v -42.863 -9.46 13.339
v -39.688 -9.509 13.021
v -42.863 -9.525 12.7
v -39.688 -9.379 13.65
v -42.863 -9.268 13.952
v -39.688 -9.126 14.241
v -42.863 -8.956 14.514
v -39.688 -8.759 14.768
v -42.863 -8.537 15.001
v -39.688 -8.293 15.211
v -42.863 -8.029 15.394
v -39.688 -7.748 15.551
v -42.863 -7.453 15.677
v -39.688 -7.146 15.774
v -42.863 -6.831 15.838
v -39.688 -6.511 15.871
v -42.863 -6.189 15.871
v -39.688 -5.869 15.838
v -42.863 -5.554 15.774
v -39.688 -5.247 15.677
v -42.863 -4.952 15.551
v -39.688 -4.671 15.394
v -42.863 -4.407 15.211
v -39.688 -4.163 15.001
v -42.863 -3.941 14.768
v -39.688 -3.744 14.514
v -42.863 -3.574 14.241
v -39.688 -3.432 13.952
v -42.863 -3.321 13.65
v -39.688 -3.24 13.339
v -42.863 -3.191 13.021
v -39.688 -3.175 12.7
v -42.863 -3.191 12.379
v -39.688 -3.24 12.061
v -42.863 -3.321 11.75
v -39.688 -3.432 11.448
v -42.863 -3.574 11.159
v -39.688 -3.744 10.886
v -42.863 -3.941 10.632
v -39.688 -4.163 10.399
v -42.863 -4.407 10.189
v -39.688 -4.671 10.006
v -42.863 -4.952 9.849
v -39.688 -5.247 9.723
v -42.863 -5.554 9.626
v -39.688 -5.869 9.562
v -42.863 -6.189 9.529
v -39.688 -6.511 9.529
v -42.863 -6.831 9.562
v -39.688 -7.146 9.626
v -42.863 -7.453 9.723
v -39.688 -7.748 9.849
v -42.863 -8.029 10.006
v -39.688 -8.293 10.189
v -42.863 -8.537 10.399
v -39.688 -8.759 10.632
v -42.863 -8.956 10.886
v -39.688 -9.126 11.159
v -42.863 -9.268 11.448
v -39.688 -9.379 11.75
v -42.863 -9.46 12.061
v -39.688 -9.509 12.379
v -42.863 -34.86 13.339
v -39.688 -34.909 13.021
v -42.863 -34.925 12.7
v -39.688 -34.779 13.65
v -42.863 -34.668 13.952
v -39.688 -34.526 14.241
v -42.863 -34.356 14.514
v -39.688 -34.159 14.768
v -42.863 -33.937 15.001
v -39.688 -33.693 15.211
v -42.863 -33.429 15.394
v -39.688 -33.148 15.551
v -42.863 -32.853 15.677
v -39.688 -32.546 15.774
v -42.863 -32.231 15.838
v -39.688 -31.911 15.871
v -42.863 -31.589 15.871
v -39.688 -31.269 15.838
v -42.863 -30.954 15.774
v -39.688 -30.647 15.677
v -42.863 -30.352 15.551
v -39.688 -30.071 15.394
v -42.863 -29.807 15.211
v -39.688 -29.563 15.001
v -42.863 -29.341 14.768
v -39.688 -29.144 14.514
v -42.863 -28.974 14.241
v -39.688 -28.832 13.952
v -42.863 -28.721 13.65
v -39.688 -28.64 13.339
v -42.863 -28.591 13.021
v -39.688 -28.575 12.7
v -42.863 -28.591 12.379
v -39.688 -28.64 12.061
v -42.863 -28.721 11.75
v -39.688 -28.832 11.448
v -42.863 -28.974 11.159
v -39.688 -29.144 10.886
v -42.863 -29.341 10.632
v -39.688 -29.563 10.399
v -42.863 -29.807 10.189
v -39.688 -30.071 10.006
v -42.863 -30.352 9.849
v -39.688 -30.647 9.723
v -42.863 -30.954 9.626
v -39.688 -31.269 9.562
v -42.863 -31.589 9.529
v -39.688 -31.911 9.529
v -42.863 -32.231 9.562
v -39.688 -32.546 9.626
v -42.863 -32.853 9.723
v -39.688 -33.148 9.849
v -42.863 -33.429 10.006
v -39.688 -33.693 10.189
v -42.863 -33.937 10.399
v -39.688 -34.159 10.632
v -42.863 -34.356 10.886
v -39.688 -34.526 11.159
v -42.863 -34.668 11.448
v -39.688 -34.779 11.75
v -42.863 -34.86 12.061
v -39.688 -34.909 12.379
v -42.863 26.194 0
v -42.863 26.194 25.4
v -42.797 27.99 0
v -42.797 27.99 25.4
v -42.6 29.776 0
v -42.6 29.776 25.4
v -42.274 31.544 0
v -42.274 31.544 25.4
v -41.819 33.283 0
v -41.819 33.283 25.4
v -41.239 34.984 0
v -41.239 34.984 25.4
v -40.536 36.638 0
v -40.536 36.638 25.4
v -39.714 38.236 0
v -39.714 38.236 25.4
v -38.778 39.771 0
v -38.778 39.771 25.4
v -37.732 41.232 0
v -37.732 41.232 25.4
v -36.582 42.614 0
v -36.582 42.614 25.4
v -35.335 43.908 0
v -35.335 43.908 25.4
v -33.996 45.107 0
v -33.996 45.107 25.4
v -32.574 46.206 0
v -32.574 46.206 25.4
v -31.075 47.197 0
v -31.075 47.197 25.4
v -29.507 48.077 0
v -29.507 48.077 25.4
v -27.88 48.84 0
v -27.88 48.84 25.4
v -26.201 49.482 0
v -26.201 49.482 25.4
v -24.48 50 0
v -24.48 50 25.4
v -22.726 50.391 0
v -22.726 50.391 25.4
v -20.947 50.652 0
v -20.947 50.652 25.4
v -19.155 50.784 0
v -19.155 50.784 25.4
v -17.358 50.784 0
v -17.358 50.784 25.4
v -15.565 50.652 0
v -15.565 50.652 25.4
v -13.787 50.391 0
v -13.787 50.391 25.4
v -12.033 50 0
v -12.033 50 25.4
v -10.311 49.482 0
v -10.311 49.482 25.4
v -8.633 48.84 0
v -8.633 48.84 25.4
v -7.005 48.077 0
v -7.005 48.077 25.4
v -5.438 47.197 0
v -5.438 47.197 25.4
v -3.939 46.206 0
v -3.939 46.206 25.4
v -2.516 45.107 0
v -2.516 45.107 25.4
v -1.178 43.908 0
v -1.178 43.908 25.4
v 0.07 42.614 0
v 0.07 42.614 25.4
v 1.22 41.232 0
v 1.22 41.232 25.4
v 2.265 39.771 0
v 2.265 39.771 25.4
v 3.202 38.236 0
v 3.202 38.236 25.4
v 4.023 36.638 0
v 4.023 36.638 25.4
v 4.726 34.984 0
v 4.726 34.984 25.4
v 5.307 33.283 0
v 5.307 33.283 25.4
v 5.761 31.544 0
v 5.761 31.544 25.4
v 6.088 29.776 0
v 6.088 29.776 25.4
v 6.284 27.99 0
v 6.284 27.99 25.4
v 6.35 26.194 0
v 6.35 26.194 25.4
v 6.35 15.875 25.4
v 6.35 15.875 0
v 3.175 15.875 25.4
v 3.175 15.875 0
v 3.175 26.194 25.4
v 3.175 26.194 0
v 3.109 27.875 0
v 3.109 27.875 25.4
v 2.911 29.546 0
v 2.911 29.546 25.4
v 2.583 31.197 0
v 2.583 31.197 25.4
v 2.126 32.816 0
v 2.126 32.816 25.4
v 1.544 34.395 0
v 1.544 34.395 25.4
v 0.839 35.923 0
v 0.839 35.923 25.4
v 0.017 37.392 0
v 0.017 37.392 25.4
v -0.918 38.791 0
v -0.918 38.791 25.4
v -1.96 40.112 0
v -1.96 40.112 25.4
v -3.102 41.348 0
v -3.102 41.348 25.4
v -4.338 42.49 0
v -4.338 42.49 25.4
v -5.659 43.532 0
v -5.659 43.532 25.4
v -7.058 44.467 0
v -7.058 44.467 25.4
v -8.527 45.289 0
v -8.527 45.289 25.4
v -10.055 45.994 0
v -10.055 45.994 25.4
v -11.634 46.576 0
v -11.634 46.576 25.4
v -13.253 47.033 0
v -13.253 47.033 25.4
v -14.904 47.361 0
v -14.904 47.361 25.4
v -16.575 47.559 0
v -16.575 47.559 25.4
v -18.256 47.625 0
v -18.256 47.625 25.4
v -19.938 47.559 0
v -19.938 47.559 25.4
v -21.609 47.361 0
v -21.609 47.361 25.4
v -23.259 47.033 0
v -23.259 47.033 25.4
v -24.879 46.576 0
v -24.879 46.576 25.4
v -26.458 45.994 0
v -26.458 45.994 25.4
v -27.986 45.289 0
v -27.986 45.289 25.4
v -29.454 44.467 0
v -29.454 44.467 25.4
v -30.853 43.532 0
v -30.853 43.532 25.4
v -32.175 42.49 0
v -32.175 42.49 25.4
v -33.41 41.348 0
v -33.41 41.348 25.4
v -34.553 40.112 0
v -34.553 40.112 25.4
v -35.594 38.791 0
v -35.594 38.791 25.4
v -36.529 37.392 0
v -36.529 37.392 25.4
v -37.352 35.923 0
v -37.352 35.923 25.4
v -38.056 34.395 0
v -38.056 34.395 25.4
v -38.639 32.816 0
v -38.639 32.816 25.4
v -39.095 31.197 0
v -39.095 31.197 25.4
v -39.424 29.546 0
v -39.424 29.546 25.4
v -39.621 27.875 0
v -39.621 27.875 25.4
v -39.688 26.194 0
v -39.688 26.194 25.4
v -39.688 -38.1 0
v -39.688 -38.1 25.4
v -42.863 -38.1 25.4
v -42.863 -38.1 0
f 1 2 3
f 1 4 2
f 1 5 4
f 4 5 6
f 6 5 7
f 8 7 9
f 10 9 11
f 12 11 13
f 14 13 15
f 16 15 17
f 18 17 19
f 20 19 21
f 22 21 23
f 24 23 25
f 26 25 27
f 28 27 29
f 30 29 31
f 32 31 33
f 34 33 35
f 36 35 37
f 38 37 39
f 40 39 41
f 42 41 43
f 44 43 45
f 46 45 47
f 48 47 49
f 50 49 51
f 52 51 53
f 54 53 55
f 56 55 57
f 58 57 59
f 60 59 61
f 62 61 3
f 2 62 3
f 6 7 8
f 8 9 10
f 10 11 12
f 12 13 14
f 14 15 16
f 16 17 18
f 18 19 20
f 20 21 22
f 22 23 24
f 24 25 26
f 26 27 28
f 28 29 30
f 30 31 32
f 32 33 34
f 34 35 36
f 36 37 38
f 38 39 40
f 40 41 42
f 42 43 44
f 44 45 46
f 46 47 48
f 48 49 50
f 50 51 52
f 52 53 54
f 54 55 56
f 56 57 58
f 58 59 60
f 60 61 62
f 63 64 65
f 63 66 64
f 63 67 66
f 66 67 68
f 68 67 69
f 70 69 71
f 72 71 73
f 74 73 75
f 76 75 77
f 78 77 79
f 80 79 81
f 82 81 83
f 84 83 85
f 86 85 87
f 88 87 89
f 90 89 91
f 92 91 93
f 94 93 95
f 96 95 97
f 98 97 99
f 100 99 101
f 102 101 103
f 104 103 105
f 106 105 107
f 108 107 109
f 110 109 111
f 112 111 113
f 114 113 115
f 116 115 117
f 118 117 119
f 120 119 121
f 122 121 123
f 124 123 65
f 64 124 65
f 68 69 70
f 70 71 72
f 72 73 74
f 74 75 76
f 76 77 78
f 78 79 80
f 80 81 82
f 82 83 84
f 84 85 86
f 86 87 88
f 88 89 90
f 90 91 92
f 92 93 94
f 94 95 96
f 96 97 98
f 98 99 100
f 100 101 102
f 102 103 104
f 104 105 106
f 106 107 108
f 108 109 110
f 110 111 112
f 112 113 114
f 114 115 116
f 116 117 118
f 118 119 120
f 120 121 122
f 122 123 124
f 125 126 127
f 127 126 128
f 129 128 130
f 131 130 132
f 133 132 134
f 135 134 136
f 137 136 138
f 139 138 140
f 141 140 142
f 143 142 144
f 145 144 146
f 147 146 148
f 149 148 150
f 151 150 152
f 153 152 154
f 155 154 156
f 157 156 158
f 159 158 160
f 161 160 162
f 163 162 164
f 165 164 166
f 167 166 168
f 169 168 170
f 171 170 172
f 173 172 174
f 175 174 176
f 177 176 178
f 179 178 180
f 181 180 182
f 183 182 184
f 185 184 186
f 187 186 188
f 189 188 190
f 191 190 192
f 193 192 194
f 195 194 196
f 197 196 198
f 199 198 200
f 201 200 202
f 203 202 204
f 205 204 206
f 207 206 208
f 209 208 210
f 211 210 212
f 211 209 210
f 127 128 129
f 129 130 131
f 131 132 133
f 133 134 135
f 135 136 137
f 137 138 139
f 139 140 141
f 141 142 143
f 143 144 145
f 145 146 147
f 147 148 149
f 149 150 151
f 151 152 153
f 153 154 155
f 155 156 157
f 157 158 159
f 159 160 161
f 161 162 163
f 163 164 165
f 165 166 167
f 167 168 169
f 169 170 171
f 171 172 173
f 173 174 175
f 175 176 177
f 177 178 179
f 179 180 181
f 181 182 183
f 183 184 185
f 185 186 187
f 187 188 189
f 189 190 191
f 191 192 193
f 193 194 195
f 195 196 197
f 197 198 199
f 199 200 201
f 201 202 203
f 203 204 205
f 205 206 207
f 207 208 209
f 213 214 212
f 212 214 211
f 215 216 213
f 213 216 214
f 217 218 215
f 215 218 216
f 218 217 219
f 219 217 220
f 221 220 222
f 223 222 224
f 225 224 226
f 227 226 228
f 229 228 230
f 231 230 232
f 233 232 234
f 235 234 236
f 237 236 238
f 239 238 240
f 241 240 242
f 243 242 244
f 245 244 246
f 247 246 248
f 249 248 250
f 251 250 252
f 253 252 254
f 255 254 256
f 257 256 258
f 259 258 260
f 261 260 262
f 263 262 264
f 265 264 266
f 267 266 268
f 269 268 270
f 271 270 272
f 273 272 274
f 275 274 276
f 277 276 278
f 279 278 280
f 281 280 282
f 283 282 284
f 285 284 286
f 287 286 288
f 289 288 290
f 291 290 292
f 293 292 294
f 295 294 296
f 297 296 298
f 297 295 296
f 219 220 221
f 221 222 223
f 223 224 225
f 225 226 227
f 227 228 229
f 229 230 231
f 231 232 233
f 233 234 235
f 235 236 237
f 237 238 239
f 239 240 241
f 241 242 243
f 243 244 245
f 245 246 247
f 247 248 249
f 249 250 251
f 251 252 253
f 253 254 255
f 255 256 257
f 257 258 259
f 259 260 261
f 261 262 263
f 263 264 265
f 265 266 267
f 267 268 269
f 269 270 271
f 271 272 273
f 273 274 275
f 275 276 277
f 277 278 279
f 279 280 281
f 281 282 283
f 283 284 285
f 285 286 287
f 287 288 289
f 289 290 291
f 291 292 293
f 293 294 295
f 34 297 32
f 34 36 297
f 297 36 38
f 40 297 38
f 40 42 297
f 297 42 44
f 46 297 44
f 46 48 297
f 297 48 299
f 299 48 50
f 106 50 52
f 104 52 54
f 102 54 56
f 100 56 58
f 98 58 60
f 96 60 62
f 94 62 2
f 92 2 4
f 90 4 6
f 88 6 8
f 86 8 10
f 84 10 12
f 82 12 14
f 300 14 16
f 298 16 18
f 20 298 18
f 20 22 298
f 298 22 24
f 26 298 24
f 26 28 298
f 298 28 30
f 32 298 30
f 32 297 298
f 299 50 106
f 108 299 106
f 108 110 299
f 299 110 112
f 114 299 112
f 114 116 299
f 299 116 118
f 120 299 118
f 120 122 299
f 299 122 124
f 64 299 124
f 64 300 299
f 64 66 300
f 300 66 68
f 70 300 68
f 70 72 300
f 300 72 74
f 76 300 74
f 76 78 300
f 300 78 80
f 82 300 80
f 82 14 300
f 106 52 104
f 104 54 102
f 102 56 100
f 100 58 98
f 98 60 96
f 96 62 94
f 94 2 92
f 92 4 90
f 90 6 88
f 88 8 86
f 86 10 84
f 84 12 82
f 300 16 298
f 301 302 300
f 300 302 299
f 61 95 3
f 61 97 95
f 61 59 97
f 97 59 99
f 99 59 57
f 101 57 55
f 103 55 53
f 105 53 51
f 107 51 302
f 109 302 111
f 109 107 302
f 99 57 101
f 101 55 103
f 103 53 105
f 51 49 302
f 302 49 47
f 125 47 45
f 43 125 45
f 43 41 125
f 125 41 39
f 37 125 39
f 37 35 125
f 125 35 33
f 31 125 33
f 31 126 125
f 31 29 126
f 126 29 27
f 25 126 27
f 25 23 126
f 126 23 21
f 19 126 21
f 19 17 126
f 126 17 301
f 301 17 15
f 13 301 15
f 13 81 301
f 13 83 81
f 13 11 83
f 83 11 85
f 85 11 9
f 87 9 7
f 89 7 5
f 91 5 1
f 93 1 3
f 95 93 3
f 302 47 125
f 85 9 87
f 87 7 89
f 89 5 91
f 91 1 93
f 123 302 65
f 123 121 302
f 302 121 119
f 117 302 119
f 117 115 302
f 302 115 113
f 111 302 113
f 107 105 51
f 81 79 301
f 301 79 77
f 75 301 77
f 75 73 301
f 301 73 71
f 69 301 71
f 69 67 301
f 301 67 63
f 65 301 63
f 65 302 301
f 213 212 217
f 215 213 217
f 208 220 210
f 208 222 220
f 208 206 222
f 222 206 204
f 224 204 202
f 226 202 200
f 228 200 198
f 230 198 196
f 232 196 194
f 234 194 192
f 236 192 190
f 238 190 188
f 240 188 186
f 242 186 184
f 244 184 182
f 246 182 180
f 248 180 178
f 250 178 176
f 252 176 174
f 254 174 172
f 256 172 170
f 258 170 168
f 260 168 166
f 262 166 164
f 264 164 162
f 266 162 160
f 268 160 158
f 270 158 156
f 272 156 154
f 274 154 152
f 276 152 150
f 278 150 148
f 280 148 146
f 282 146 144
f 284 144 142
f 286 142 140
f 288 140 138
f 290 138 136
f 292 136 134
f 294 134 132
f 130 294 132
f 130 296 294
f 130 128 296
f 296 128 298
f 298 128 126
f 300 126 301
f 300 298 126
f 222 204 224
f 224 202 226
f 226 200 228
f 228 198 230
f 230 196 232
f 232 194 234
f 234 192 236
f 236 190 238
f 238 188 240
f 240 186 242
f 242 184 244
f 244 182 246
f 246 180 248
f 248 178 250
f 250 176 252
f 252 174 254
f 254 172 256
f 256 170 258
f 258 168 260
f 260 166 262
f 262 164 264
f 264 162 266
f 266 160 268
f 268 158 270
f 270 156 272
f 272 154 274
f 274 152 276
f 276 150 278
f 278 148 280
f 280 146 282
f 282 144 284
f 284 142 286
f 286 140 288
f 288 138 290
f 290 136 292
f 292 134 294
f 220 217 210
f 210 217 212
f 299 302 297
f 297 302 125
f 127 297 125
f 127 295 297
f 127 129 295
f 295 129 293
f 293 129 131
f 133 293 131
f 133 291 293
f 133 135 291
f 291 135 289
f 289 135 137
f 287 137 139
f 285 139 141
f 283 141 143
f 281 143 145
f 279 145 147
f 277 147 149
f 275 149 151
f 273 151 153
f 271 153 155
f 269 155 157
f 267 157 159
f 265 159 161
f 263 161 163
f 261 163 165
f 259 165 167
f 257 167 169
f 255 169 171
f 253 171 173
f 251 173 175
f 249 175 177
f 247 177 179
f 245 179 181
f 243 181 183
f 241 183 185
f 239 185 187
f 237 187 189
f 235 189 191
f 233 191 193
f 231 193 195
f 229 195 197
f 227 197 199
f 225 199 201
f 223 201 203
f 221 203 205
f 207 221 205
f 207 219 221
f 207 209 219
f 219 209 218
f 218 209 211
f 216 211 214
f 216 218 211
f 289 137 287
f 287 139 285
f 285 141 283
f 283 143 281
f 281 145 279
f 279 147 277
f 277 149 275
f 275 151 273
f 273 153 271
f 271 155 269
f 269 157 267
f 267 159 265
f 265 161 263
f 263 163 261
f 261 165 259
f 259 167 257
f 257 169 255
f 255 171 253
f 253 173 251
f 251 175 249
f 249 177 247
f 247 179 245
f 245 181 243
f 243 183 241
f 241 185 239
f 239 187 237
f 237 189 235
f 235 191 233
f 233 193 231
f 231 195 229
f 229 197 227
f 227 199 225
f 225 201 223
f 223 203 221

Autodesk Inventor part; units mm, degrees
ref_plane "YZ Plane" through (0, 0, 0) normal (1, 0, 0) x (0, 1, 0)
ref_plane "XZ Plane" through (0, 0, 0) normal (0, 1, 0) x (-1, 0, 0)
ref_plane "XY Plane" through (0, 0, 0) normal (0, 0, 1) x (1, 0, 0)
sketch "Sketch1" plane through (0, 0, 0) normal (0, 0, 1) x (1, 0, 0)
  line L0 (-42.8625, -38.1) -> (-42.8625, 26.1937)
  arc A0 (6.35, 26.1938) -> (-42.8625, 26.1937) centre (-18.2562, 26.1937) ccw
  line L1 (6.35, 26.1938) -> (6.35, 15.875)
  line L2 (-39.6875, -38.1) -> (-39.6875, 26.1937)
  arc A1 (3.175, 26.1938) -> (-39.6875, 26.1937) centre (-18.2562, 26.1937) ccw
  line L3 (3.175, 26.1938) -> (3.175, 15.875)
  line L4 (-42.8625, -38.1) -> (-39.6875, -38.1)
  line L5 (3.175, 15.875) -> (6.35, 15.875)
  dimension "d0" = 3.175
  dimension "d1" = 88.9
  dimension "d2" = 21.4312
  dimension "d3" = 34.925
extrude "Extrusion1" add sketch "Sketch1" along normal blind 25.4
hole "Hole1" at (-39.6875, -31.75, 12.7) direction (-1, 0, 0) diameter 6.35 end through all
pattern_linear "Rectangular Pattern1" count 2 spacing 25.4 along (0, 1, 0) of "Hole1"
properties part number "FE-00016"
